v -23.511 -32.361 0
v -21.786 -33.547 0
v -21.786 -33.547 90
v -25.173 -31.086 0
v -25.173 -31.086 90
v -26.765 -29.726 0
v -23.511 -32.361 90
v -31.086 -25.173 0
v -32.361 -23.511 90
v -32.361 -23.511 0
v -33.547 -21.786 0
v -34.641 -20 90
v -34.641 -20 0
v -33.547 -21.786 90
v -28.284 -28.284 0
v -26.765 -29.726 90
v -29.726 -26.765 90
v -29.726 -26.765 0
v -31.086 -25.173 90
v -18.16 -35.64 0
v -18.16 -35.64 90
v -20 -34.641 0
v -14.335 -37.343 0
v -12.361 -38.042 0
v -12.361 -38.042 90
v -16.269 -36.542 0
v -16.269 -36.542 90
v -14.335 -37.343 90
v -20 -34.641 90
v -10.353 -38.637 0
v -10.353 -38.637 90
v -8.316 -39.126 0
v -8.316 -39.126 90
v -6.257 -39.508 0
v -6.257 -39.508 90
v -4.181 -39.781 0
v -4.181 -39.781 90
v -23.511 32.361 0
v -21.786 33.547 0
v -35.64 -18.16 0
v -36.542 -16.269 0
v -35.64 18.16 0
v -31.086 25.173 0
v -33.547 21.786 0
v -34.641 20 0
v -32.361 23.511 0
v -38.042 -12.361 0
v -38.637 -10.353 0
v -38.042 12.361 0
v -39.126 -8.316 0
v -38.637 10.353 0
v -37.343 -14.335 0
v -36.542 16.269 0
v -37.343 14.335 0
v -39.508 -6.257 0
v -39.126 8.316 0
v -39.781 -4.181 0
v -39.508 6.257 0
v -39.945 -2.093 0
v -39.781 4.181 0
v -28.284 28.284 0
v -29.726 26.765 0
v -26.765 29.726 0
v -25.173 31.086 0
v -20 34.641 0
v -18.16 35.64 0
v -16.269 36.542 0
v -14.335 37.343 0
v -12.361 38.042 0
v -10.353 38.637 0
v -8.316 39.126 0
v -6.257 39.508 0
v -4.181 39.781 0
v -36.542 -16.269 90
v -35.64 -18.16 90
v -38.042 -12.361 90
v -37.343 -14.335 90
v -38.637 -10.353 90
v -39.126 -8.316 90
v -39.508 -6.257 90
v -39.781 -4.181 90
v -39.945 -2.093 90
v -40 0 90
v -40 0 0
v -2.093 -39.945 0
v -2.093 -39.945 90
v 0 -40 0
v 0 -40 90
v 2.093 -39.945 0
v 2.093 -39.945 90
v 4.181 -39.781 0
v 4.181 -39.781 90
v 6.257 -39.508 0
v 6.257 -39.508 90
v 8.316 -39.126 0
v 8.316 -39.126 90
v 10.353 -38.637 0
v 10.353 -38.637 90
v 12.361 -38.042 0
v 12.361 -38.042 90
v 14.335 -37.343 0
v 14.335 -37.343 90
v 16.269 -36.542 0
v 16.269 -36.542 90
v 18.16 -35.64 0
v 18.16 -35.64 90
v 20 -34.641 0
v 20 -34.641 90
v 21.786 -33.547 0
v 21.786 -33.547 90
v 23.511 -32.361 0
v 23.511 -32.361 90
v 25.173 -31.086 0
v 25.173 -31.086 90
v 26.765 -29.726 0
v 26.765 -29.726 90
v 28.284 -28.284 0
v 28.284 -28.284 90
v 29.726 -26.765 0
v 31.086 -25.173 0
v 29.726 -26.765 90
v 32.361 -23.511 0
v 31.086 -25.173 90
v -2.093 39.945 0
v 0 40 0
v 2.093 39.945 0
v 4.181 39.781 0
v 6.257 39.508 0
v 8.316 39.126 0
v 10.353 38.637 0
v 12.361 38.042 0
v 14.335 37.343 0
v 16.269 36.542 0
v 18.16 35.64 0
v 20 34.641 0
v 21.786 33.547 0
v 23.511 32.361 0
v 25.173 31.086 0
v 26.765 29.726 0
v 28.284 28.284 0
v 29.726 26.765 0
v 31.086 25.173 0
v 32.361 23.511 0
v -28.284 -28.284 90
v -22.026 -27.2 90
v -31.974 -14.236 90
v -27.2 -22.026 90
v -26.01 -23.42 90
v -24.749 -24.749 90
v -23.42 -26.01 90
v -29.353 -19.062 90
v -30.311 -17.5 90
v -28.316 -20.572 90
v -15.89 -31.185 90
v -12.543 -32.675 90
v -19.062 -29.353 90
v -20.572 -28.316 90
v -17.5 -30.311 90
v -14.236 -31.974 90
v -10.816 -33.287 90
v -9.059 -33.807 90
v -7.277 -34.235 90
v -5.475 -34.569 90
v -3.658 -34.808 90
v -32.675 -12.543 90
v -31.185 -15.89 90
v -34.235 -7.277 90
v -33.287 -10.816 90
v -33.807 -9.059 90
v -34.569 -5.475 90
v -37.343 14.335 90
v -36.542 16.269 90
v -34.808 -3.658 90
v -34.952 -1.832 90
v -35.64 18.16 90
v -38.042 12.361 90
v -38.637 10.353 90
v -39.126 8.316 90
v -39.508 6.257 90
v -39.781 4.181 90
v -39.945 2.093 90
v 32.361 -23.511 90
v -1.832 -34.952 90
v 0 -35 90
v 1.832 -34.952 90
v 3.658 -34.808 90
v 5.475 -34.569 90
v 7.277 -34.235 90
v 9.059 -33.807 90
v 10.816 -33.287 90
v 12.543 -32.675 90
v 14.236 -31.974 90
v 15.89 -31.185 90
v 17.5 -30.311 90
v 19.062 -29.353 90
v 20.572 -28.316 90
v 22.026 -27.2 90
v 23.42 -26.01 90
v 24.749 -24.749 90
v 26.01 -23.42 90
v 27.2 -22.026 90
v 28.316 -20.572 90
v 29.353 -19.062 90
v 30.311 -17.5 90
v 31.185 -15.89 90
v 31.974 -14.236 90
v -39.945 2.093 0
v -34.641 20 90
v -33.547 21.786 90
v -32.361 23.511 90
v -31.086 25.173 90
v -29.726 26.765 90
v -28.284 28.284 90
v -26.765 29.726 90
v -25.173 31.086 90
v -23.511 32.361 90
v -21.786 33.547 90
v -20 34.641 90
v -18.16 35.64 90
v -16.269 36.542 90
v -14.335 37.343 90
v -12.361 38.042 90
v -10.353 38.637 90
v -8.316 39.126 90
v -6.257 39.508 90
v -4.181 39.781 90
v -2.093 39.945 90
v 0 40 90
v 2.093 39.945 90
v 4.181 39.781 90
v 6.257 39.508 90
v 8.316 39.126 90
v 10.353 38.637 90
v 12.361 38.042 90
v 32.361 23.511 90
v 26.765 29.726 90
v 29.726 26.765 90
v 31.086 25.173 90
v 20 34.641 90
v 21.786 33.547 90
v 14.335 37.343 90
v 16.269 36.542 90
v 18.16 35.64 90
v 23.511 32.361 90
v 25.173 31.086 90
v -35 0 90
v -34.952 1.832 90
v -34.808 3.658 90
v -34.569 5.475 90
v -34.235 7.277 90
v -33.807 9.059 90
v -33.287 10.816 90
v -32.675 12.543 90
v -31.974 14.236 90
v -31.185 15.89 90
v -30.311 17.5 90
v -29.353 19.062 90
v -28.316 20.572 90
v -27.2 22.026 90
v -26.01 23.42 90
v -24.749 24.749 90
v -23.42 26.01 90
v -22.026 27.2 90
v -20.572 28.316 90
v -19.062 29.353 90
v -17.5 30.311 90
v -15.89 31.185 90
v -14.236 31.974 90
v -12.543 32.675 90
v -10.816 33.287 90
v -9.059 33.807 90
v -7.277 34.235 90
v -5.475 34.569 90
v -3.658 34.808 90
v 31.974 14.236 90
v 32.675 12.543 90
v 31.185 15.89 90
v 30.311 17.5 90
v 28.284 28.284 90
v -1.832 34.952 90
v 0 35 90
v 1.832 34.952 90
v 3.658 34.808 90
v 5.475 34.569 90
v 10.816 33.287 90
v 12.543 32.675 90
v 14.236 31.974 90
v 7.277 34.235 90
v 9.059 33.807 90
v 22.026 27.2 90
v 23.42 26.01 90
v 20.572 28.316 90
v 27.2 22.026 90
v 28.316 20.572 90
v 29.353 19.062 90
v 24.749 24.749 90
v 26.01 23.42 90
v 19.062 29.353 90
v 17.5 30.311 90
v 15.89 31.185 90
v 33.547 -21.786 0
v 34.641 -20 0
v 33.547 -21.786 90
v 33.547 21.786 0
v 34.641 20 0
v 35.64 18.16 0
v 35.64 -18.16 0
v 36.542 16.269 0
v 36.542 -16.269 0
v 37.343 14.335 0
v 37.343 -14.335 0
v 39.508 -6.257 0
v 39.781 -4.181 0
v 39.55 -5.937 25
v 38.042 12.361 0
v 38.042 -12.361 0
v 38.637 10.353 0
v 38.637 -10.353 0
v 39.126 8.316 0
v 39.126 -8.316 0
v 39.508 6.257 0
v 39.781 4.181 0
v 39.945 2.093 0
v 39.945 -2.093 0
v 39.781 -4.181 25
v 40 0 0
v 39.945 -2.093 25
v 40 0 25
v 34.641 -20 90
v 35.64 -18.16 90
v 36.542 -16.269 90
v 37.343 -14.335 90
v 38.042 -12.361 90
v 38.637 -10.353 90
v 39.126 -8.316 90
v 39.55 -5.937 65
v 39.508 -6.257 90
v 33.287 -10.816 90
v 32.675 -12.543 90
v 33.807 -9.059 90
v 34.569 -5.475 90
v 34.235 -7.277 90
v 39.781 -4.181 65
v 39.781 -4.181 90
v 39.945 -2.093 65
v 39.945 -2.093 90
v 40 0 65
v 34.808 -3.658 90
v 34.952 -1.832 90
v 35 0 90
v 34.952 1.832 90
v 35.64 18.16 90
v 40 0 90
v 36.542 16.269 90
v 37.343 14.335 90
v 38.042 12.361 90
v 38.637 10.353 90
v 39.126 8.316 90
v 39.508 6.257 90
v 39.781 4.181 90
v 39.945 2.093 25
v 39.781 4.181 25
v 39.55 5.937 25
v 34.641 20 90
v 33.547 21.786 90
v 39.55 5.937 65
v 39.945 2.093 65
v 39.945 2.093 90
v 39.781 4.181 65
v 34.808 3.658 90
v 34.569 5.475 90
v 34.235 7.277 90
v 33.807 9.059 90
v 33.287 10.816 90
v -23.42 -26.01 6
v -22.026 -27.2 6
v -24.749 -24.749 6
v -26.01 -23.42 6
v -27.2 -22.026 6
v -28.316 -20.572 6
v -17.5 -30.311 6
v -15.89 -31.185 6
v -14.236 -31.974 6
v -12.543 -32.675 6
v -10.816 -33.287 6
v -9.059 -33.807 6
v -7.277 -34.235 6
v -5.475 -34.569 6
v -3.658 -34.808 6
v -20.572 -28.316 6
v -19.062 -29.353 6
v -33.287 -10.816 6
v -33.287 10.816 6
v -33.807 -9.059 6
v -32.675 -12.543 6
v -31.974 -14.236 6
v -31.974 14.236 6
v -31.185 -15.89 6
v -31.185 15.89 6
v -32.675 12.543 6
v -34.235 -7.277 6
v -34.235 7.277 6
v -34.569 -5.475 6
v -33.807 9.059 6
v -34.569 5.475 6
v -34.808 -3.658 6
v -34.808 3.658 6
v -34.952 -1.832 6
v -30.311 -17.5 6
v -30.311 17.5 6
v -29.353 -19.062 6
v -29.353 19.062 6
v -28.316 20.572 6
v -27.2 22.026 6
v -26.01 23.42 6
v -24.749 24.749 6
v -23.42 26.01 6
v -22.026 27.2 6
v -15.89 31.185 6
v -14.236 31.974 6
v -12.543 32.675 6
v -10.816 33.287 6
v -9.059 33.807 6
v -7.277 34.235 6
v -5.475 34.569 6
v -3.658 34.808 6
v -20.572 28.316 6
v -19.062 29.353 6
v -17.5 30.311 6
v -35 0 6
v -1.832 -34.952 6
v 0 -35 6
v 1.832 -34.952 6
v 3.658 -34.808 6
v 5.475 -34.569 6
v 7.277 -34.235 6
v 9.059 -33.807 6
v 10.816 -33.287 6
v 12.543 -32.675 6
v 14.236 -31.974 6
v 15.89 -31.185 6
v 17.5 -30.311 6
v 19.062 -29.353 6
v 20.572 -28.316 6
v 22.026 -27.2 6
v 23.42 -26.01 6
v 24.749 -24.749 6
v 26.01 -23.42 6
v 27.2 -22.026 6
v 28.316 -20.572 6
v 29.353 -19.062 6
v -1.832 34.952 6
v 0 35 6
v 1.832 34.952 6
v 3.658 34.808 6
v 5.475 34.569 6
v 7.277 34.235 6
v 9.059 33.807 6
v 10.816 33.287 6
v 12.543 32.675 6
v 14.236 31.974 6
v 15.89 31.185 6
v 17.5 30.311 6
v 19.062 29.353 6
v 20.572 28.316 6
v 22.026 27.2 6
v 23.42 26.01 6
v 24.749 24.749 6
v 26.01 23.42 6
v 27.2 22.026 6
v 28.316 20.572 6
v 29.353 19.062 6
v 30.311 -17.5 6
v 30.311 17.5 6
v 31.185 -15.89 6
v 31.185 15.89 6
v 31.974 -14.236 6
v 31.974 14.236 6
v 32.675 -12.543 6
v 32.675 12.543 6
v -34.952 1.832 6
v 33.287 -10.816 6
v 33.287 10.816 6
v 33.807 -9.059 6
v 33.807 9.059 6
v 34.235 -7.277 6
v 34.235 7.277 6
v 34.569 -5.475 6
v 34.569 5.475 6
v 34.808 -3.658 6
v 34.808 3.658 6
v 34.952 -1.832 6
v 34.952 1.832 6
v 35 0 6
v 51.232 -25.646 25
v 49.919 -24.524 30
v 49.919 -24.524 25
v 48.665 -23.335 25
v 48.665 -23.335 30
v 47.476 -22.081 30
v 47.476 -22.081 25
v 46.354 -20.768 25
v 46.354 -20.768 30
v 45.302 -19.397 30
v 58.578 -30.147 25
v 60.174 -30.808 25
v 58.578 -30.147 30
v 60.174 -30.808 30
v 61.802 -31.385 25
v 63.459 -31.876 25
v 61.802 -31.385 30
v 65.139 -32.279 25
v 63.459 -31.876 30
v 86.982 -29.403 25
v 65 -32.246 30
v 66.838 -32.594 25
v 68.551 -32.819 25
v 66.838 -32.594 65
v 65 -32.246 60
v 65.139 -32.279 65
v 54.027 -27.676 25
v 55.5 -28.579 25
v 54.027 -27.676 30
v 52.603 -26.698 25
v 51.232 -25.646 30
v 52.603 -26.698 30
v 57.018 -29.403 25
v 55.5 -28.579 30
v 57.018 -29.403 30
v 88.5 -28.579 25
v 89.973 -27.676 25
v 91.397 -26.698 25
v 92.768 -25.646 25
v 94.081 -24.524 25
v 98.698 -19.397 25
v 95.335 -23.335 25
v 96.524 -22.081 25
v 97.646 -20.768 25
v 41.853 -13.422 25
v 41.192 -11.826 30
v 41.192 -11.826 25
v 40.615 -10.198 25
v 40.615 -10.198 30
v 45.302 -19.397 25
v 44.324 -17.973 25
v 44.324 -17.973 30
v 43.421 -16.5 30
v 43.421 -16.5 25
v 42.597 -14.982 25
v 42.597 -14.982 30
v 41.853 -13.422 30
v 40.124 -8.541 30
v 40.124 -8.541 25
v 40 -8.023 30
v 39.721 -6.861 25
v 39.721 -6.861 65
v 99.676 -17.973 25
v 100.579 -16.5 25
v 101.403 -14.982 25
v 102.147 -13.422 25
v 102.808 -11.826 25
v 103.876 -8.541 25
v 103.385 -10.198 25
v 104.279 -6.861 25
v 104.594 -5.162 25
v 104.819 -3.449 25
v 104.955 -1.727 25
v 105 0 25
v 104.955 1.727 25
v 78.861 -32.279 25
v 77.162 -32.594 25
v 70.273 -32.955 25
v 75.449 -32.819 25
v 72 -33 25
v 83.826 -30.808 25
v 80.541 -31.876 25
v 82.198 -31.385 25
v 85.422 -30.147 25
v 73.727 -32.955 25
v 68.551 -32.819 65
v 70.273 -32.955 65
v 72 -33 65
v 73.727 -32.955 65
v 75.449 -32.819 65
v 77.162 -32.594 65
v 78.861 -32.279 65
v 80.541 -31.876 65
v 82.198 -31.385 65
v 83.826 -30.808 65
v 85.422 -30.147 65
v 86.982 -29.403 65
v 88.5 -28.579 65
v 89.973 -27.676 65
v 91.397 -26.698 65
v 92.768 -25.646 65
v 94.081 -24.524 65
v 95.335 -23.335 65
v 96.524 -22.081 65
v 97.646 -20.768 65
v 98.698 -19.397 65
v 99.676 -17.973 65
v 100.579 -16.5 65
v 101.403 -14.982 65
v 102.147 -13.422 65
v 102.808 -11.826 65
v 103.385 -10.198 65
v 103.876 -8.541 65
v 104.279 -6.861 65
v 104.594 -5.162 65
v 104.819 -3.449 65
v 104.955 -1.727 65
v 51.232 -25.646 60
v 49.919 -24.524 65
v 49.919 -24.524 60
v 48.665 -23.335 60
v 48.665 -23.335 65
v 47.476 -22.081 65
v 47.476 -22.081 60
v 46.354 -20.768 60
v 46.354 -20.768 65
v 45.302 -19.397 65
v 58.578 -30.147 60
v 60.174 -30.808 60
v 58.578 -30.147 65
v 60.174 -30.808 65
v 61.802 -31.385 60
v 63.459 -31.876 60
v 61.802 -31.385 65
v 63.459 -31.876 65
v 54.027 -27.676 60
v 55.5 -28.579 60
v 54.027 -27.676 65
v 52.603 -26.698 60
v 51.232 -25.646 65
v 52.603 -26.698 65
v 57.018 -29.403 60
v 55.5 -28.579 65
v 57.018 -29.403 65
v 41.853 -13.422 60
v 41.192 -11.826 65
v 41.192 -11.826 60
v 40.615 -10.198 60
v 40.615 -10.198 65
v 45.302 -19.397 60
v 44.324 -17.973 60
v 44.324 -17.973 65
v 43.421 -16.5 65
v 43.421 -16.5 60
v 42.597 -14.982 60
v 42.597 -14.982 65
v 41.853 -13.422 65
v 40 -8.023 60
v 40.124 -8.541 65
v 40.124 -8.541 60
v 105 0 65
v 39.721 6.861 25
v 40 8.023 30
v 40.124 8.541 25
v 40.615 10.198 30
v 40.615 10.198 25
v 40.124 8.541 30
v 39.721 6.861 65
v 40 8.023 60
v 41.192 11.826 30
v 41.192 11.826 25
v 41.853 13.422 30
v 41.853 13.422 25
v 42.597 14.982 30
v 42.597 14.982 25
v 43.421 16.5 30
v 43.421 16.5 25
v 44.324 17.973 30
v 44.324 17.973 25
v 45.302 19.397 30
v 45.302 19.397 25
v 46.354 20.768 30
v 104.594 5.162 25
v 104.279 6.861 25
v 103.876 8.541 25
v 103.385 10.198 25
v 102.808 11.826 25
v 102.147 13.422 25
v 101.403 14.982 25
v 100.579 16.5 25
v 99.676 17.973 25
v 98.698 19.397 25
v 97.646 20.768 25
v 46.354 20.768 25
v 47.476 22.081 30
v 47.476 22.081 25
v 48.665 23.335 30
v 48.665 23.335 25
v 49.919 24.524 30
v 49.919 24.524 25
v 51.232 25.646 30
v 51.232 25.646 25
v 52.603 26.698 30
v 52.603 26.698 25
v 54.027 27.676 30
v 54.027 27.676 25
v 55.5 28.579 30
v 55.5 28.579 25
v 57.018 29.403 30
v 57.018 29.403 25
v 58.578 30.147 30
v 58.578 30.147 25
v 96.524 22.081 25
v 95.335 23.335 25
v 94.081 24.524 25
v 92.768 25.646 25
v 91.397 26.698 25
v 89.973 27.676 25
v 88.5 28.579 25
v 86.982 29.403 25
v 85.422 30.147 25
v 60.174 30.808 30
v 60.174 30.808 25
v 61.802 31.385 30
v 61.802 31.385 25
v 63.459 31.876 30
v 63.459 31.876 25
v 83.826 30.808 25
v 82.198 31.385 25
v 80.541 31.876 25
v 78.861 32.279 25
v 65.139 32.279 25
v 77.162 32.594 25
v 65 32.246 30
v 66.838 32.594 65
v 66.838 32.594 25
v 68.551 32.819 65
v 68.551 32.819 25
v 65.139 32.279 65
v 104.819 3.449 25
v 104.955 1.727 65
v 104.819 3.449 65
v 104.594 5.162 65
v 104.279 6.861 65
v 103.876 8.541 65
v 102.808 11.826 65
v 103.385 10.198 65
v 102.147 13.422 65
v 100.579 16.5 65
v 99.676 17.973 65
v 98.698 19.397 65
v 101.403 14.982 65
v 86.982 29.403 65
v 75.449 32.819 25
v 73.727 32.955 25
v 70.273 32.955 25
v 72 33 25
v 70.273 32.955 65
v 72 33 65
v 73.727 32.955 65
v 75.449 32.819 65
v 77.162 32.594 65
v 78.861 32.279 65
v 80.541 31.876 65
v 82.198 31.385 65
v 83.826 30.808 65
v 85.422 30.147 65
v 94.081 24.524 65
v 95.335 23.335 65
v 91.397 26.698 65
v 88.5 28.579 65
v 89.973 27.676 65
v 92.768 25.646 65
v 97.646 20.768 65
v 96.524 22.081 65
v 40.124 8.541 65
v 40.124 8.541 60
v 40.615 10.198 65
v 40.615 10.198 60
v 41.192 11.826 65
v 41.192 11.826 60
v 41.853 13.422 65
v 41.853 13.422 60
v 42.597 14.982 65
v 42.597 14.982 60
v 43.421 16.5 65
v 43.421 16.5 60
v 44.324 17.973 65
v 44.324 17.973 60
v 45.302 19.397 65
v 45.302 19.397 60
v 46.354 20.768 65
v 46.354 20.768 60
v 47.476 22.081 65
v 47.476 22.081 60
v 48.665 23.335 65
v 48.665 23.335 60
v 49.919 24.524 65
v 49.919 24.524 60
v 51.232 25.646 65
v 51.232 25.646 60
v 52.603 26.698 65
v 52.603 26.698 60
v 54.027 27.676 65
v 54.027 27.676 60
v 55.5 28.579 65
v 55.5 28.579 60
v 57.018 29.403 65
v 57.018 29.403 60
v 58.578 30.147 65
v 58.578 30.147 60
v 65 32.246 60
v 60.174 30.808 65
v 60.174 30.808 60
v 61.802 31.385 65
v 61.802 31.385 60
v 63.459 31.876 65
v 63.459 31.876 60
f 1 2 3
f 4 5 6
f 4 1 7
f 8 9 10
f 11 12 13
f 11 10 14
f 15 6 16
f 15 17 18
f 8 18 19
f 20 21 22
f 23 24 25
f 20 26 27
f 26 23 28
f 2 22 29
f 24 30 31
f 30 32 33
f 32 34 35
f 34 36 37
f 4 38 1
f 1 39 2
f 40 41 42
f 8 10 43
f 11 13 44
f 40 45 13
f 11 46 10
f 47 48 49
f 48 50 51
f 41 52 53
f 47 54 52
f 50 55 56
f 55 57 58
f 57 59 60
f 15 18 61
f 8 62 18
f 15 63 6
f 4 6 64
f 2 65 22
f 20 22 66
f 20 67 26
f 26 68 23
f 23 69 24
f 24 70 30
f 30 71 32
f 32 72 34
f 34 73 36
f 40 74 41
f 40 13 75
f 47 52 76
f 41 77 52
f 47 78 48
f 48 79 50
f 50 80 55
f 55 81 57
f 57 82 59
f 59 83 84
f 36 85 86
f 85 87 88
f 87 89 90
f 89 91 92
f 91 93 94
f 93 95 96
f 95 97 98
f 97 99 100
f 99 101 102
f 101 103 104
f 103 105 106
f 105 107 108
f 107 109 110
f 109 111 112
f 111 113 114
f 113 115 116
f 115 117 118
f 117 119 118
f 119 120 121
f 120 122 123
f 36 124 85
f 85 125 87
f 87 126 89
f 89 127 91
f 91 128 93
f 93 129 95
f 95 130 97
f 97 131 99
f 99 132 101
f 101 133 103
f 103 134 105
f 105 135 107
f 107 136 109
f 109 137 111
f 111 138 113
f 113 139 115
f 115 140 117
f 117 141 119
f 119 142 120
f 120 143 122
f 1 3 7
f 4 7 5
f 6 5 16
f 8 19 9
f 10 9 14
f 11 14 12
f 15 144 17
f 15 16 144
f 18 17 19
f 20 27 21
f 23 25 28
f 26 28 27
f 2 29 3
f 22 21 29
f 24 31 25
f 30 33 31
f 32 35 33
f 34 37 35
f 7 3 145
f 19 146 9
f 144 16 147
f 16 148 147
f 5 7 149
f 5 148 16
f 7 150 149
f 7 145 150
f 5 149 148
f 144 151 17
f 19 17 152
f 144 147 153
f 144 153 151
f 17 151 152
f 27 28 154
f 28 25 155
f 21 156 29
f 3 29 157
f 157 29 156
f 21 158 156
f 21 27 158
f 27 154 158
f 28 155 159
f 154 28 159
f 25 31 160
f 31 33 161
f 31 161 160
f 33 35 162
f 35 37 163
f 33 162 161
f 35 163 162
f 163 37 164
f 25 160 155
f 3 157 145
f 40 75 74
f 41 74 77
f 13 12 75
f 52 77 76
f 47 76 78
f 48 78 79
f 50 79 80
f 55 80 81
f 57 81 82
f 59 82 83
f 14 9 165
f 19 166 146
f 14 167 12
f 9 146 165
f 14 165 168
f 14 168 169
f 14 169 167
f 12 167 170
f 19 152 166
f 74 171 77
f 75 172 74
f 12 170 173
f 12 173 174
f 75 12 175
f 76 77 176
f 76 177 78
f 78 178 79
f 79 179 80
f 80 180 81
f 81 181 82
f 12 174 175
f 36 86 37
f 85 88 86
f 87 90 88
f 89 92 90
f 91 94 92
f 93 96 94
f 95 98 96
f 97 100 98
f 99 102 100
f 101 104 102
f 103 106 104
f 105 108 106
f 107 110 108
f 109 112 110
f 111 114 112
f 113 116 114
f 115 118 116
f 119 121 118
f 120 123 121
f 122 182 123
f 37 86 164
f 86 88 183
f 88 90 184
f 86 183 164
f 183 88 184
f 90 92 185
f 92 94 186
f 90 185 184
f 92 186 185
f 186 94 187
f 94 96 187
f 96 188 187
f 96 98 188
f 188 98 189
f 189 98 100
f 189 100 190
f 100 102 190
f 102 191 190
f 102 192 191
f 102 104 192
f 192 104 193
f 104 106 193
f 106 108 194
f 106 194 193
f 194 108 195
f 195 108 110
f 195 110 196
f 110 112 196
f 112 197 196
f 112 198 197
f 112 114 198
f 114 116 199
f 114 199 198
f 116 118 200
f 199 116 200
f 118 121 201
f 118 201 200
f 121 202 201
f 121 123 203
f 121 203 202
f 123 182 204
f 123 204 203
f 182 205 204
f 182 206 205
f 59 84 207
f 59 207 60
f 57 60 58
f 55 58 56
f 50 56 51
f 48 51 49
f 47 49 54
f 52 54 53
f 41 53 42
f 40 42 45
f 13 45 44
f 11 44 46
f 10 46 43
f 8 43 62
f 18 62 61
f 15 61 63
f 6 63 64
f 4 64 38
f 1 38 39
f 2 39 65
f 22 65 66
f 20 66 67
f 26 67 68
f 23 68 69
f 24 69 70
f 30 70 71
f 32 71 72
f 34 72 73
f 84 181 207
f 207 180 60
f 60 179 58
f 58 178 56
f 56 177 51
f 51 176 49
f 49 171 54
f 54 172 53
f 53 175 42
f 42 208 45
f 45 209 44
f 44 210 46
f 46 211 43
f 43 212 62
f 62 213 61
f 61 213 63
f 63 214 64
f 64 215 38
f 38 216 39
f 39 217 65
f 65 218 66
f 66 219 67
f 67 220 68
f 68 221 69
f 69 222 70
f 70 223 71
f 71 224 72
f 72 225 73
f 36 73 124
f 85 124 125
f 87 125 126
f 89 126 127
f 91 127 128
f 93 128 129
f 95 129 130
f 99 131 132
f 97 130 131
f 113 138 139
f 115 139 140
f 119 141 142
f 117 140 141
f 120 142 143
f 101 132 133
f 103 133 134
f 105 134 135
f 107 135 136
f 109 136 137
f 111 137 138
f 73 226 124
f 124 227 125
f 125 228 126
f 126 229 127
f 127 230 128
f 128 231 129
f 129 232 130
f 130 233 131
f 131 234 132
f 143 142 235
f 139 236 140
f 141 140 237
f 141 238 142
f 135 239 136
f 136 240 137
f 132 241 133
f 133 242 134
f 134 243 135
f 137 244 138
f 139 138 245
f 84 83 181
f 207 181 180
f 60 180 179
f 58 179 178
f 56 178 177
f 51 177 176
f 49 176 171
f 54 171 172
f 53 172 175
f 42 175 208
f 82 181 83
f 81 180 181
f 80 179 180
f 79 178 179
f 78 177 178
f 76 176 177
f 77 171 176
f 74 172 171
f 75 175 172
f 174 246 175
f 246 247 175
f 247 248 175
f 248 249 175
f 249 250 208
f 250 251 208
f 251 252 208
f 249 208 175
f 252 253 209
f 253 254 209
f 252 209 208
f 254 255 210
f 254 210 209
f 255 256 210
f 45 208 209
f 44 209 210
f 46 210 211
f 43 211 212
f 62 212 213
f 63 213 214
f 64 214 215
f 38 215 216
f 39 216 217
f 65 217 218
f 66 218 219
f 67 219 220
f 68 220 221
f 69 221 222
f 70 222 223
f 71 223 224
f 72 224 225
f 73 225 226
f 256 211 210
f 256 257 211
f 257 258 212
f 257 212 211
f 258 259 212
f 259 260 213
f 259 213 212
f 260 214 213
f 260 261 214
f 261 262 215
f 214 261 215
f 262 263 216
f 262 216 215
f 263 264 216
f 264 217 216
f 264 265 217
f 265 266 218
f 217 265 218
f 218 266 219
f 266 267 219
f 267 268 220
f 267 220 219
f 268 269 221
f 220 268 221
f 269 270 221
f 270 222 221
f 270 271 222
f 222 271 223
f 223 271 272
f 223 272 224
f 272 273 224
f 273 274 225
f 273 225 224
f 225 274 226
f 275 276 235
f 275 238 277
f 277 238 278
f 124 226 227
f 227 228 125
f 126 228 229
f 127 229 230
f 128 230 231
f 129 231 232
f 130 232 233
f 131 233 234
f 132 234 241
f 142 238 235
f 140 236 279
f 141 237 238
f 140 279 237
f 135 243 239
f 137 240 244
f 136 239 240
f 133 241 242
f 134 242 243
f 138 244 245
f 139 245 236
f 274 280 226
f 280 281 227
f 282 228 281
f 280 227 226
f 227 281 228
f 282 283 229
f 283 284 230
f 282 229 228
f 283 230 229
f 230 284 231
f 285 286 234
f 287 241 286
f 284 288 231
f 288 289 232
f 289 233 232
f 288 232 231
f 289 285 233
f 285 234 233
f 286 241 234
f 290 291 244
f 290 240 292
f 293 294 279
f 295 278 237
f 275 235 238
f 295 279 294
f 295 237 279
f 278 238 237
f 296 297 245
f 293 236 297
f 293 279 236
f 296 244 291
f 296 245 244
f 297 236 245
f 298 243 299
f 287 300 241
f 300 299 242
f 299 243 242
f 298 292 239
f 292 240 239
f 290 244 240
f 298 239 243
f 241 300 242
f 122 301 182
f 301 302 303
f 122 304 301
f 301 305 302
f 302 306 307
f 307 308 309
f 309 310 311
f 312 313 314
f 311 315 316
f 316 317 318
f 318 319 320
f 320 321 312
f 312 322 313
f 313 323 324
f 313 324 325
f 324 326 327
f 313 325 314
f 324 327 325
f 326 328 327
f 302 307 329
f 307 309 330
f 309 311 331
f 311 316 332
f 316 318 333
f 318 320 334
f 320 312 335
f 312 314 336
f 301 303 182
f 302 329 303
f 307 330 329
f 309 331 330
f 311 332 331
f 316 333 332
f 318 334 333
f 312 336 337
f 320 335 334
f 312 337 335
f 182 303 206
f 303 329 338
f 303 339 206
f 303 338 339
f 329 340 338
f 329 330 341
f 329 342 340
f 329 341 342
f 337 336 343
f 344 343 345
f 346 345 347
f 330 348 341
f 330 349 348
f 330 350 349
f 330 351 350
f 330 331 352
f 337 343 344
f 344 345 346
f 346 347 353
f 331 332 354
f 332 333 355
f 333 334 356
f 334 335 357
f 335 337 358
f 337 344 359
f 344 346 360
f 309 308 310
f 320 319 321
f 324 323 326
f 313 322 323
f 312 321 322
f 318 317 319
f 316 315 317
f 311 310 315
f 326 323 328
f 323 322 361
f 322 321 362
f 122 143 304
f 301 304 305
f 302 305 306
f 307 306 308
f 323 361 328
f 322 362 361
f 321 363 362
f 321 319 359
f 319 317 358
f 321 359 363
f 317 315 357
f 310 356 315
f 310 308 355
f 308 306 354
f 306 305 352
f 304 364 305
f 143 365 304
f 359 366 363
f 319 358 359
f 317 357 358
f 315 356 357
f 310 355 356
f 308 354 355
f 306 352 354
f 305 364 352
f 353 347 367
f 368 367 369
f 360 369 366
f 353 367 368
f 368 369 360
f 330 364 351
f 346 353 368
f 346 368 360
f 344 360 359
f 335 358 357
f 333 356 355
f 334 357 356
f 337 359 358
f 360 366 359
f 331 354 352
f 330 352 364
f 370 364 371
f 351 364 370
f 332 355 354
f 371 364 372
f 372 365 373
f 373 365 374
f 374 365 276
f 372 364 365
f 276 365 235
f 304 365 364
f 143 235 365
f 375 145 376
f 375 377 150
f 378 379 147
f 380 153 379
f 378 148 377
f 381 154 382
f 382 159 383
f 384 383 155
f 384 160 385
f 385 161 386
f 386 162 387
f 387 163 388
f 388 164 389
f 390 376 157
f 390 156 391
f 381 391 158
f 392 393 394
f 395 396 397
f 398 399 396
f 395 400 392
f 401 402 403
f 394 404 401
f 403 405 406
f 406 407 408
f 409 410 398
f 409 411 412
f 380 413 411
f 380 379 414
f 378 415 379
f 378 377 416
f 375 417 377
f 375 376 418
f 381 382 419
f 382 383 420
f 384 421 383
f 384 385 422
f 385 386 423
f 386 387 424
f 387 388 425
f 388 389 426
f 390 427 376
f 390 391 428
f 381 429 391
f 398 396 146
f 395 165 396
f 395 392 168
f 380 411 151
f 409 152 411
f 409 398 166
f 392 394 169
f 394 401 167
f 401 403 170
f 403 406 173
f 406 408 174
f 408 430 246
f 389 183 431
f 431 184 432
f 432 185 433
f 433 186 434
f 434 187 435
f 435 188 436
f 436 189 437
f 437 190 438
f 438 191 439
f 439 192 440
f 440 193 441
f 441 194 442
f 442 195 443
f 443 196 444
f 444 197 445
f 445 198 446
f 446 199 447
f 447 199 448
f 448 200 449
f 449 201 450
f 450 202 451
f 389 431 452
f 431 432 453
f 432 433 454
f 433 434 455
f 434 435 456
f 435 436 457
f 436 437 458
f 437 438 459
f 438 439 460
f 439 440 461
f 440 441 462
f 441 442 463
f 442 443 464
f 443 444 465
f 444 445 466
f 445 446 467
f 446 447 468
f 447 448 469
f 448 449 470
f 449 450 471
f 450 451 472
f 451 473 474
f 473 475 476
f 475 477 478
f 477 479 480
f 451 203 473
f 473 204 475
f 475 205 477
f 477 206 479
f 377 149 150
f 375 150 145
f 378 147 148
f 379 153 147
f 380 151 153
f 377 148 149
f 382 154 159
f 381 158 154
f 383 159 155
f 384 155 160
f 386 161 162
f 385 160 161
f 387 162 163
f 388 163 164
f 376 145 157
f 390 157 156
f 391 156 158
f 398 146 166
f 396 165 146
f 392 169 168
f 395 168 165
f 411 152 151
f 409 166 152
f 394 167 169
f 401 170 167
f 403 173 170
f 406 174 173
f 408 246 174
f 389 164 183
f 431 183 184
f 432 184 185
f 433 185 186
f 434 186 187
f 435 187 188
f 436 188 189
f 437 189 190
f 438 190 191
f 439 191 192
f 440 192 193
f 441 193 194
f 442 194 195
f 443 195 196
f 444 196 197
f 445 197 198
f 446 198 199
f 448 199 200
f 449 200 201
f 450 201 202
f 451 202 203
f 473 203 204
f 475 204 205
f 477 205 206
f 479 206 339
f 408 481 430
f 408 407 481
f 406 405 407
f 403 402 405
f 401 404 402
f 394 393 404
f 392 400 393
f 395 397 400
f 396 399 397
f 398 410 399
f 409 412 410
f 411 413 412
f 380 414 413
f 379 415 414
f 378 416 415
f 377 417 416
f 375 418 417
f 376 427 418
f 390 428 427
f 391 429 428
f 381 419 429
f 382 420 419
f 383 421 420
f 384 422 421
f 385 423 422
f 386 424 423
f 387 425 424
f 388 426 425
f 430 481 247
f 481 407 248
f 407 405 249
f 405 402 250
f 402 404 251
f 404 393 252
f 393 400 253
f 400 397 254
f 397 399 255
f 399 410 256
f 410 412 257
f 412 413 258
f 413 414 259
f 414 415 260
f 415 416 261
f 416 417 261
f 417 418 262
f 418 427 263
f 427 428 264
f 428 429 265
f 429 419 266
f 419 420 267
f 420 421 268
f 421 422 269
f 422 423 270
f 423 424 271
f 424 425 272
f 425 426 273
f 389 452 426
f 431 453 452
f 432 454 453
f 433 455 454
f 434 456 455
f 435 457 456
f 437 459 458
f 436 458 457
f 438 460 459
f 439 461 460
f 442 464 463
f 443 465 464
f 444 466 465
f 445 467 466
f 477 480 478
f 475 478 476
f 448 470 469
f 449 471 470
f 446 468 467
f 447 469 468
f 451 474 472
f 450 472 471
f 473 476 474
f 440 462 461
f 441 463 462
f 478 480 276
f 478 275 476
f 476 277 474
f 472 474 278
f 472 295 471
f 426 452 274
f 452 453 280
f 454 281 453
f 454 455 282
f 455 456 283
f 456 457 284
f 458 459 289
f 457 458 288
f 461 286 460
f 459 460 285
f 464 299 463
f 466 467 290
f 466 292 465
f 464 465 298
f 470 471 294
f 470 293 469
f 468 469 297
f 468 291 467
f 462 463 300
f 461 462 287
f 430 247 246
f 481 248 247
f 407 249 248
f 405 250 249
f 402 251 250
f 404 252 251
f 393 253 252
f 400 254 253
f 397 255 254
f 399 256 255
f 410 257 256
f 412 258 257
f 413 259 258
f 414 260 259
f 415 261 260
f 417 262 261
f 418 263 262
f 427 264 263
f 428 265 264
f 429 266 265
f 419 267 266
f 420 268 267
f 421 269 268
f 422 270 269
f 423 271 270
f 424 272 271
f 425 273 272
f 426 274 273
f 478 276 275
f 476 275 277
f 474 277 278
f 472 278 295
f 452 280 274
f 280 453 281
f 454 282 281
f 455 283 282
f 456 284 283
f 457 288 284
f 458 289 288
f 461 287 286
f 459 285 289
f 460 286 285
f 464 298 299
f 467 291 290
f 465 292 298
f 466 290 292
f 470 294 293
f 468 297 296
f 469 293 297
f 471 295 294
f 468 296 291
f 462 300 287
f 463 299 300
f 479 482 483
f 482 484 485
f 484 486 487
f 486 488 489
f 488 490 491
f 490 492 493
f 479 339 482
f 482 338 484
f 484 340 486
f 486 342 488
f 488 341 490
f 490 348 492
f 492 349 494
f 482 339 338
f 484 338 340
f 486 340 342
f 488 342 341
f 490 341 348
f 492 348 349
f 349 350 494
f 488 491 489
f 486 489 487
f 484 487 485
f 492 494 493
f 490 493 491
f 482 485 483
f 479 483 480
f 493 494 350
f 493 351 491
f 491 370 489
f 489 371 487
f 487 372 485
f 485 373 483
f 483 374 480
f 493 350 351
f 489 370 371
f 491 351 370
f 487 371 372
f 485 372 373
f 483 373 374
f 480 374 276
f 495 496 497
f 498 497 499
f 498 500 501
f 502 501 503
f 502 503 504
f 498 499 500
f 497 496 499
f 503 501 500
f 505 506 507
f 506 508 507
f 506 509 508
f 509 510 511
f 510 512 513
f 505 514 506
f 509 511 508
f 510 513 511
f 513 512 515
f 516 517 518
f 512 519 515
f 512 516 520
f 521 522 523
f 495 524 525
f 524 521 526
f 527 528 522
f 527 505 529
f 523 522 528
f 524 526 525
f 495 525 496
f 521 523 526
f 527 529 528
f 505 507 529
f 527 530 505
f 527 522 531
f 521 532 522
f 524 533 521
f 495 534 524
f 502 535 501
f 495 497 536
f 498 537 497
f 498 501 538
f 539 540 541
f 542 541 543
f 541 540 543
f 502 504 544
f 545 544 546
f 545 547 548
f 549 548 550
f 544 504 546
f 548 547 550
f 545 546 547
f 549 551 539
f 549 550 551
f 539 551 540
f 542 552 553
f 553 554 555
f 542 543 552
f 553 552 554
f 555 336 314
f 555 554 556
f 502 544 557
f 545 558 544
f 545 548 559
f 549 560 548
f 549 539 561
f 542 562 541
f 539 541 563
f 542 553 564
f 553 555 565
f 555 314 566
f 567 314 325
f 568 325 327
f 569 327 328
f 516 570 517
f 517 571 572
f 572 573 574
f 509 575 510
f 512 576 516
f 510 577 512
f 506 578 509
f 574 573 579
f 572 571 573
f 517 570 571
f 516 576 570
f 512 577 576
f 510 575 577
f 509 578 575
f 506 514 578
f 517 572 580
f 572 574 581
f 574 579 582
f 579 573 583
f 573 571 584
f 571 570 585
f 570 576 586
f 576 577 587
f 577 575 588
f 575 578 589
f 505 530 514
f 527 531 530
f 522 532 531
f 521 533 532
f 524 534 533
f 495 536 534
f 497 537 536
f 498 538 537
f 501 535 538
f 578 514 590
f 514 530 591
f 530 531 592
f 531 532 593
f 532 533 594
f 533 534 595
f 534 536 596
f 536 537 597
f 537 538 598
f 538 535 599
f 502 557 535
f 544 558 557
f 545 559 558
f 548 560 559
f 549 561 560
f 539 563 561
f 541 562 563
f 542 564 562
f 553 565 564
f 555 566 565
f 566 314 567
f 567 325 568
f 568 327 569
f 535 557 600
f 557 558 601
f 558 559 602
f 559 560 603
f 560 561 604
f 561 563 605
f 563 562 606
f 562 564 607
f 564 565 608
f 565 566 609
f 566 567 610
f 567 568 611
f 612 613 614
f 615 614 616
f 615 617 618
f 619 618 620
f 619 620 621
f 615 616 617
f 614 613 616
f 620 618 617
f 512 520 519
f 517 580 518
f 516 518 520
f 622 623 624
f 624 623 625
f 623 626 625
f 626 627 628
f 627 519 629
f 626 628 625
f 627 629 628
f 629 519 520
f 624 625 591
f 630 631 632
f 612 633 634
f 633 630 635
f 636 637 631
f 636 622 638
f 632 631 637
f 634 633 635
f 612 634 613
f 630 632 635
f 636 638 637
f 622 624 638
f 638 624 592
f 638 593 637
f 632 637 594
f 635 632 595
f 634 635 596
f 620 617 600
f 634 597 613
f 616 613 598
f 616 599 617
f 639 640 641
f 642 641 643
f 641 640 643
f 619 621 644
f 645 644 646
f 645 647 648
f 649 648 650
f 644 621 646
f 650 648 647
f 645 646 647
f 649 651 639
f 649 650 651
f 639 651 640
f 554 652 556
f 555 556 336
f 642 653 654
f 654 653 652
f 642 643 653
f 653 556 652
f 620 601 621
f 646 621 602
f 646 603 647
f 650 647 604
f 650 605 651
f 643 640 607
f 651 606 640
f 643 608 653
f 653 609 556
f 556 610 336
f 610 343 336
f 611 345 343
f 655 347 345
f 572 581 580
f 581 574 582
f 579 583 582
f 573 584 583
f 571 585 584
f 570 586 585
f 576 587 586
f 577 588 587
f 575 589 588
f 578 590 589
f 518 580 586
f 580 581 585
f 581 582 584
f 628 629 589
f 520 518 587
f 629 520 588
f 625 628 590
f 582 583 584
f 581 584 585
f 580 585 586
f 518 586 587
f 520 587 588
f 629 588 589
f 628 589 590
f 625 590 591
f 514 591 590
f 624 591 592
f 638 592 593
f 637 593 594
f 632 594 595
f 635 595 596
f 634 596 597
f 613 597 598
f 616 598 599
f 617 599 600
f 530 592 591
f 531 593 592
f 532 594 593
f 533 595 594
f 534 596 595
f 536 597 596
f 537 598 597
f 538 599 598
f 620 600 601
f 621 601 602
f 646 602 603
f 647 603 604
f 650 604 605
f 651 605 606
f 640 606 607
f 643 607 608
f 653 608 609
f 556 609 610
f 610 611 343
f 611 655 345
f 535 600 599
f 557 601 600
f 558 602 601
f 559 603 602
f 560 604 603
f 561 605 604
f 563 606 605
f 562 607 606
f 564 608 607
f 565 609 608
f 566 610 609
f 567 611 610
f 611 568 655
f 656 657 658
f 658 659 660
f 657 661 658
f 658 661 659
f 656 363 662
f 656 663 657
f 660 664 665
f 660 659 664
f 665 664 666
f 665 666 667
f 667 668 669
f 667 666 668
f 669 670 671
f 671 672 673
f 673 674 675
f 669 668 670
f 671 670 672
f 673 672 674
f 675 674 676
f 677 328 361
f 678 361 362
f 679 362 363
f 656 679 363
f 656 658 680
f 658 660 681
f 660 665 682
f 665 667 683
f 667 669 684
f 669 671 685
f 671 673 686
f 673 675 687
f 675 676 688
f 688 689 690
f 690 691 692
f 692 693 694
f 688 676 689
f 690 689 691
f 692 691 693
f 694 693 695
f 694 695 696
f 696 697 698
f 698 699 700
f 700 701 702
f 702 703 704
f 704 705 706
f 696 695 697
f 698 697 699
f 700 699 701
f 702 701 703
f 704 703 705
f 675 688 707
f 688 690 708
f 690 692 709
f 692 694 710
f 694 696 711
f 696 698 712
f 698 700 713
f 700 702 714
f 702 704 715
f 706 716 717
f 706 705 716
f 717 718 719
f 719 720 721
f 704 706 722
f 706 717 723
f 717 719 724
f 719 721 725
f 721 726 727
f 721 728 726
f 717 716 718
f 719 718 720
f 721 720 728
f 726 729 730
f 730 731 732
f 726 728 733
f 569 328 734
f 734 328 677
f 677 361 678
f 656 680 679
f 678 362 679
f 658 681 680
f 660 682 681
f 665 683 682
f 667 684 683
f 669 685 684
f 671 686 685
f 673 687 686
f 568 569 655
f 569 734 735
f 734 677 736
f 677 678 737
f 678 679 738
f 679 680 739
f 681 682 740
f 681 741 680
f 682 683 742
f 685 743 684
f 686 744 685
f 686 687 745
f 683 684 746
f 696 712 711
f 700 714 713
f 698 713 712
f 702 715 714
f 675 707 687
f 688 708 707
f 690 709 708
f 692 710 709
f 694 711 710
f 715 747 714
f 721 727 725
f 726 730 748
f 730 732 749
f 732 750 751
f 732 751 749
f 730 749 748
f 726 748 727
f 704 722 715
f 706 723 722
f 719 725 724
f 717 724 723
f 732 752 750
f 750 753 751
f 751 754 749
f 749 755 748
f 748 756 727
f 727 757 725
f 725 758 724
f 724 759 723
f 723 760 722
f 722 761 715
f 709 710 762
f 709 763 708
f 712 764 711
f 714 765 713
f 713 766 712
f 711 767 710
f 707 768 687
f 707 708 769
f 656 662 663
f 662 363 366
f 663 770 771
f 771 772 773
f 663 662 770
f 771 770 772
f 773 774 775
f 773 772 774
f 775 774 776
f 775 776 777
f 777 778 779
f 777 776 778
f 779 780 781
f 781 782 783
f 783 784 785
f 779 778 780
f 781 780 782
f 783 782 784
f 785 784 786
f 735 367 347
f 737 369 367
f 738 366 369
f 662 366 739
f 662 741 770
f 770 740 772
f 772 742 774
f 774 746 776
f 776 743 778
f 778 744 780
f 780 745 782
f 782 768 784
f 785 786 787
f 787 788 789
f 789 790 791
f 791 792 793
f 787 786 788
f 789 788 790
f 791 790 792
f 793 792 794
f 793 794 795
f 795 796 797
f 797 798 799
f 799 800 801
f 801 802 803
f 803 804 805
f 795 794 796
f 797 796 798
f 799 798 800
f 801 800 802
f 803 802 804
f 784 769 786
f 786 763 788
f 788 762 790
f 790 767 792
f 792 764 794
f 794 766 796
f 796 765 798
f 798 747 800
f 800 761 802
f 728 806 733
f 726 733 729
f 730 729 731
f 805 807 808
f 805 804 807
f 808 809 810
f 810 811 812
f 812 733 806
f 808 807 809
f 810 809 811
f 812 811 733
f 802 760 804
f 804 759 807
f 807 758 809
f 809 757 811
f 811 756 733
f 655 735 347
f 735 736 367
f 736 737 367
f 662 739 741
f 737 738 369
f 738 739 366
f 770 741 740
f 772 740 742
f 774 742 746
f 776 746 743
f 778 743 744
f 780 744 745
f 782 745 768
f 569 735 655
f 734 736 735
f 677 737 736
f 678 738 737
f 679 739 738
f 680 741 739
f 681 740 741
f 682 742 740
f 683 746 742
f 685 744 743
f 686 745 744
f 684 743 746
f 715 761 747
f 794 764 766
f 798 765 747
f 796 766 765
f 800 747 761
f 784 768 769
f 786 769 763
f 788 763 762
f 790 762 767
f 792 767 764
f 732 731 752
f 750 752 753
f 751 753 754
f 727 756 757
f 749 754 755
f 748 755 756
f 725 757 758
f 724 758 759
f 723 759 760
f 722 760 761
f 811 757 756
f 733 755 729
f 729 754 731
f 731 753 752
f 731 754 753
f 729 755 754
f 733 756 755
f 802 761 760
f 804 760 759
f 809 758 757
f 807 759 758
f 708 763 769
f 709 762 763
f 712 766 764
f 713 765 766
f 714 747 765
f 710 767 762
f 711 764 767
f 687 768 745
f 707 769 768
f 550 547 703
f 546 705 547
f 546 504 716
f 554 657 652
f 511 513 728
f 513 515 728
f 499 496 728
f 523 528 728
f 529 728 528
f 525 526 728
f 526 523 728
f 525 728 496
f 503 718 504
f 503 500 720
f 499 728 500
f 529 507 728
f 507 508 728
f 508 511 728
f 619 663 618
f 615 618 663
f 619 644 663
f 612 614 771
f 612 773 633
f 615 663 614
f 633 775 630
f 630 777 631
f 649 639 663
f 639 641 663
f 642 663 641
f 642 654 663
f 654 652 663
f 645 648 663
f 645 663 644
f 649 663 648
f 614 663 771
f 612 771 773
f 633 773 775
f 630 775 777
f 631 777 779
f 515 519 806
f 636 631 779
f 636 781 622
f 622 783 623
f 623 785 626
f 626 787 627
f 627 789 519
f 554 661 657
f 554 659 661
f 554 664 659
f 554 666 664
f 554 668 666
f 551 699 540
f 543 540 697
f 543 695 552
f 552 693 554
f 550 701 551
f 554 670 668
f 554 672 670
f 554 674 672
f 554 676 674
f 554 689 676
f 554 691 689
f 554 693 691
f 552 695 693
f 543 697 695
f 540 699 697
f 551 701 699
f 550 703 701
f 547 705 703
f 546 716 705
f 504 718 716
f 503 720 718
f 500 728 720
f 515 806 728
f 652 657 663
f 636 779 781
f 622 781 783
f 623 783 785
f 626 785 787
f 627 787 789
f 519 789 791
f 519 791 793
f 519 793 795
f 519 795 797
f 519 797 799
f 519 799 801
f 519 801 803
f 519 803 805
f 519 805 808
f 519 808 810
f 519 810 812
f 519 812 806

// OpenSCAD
// OpenSCAD: マグカップ (指定寸法) + D字取手（+X 側のみ）
// 単位: mm

$fn = 120; // 円を滑らかに

// -------- パラメータ --------
mug_outer_r = 40;    // 外半径 (外径 80)
mug_inner_r = 35;    // 内半径 (内径 70)
mug_h = 90;          // 高さ
bottom_thickness = 6;

handle_overlap = 1;          // 本体へめり込み量（接合確実化）
flat_face_x = mug_outer_r - handle_overlap; // 取手の本体接触面の X 座標 (本体側直線)
inner_open_w = 25;          // 取手内側空間の幅 (radial direction)
inner_open_h = 30;          // 取手内側空間の高さ (vertical direction)
handle_wall = 8;            // 取手の外側と内側の間の厚み
R_out = inner_open_w + handle_wall; // 外側半円の半径（平面投影）
handle_extrude_h = 40;      // 取手の垂直厚み（内空間高さより大きく取る）
mug_center_z = mug_h/2;

// 取手配置用座標
outer_center_x = flat_face_x + R_out; // 外側半円の中心 x
inner_void_left_x = mug_outer_r;      // 内側空間の左端をマグ本体外周に合わせる
// Z 配置
handle_z_bottom = mug_center_z - handle_extrude_h/2; // 取手外形の下端 (global Z)
inner_void_z = mug_center_z - inner_open_h/2;        // 内空間の下端 (global Z)

// -------- モジュール --------
module mug() {
    // 外殻 - 中空底付きの円筒
    difference() {
        // 外側
        translate([0,0,0]) cylinder(h=mug_h, r=mug_outer_r);
        // 内側の空間（底厚を残す）
        translate([0,0,bottom_thickness]) cylinder(h=mug_h - bottom_thickness, r=mug_inner_r);
    }
}

module handle_piece() {
    // 取手外形（2D 半円を押し出す）から内側の指空間を差し引く
    difference() {
        // 外形の押し出し（2D: 半円）
        translate([0,0,handle_z_bottom])
            linear_extrude(height = handle_extrude_h, center = false, convexity = 10)
                intersection() {
                    translate([outer_center_x, 0]) circle(r=R_out);
                    // 半分に切るための大きな矩形（少し余裕を持たせる）
                    translate([flat_face_x - 10, -(R_out + 10)])
                        square([ (outer_center_x + R_out) - (flat_face_x - 10) + 20, 2*(R_out + 10) ]);
                }

        // 取手内側の空間を差し引く（十分に大きな Y 範囲で貫通させる）
        translate([inner_void_left_x, -(R_out + 10), inner_void_z])
            cube([inner_open_w, 2*(R_out + 10), inner_open_h]);
    }
}

// -------- 組み立て --------
union() {
    // 本体
    mug();

    // 取手（+X 側のみ）
    handle_piece();
}
